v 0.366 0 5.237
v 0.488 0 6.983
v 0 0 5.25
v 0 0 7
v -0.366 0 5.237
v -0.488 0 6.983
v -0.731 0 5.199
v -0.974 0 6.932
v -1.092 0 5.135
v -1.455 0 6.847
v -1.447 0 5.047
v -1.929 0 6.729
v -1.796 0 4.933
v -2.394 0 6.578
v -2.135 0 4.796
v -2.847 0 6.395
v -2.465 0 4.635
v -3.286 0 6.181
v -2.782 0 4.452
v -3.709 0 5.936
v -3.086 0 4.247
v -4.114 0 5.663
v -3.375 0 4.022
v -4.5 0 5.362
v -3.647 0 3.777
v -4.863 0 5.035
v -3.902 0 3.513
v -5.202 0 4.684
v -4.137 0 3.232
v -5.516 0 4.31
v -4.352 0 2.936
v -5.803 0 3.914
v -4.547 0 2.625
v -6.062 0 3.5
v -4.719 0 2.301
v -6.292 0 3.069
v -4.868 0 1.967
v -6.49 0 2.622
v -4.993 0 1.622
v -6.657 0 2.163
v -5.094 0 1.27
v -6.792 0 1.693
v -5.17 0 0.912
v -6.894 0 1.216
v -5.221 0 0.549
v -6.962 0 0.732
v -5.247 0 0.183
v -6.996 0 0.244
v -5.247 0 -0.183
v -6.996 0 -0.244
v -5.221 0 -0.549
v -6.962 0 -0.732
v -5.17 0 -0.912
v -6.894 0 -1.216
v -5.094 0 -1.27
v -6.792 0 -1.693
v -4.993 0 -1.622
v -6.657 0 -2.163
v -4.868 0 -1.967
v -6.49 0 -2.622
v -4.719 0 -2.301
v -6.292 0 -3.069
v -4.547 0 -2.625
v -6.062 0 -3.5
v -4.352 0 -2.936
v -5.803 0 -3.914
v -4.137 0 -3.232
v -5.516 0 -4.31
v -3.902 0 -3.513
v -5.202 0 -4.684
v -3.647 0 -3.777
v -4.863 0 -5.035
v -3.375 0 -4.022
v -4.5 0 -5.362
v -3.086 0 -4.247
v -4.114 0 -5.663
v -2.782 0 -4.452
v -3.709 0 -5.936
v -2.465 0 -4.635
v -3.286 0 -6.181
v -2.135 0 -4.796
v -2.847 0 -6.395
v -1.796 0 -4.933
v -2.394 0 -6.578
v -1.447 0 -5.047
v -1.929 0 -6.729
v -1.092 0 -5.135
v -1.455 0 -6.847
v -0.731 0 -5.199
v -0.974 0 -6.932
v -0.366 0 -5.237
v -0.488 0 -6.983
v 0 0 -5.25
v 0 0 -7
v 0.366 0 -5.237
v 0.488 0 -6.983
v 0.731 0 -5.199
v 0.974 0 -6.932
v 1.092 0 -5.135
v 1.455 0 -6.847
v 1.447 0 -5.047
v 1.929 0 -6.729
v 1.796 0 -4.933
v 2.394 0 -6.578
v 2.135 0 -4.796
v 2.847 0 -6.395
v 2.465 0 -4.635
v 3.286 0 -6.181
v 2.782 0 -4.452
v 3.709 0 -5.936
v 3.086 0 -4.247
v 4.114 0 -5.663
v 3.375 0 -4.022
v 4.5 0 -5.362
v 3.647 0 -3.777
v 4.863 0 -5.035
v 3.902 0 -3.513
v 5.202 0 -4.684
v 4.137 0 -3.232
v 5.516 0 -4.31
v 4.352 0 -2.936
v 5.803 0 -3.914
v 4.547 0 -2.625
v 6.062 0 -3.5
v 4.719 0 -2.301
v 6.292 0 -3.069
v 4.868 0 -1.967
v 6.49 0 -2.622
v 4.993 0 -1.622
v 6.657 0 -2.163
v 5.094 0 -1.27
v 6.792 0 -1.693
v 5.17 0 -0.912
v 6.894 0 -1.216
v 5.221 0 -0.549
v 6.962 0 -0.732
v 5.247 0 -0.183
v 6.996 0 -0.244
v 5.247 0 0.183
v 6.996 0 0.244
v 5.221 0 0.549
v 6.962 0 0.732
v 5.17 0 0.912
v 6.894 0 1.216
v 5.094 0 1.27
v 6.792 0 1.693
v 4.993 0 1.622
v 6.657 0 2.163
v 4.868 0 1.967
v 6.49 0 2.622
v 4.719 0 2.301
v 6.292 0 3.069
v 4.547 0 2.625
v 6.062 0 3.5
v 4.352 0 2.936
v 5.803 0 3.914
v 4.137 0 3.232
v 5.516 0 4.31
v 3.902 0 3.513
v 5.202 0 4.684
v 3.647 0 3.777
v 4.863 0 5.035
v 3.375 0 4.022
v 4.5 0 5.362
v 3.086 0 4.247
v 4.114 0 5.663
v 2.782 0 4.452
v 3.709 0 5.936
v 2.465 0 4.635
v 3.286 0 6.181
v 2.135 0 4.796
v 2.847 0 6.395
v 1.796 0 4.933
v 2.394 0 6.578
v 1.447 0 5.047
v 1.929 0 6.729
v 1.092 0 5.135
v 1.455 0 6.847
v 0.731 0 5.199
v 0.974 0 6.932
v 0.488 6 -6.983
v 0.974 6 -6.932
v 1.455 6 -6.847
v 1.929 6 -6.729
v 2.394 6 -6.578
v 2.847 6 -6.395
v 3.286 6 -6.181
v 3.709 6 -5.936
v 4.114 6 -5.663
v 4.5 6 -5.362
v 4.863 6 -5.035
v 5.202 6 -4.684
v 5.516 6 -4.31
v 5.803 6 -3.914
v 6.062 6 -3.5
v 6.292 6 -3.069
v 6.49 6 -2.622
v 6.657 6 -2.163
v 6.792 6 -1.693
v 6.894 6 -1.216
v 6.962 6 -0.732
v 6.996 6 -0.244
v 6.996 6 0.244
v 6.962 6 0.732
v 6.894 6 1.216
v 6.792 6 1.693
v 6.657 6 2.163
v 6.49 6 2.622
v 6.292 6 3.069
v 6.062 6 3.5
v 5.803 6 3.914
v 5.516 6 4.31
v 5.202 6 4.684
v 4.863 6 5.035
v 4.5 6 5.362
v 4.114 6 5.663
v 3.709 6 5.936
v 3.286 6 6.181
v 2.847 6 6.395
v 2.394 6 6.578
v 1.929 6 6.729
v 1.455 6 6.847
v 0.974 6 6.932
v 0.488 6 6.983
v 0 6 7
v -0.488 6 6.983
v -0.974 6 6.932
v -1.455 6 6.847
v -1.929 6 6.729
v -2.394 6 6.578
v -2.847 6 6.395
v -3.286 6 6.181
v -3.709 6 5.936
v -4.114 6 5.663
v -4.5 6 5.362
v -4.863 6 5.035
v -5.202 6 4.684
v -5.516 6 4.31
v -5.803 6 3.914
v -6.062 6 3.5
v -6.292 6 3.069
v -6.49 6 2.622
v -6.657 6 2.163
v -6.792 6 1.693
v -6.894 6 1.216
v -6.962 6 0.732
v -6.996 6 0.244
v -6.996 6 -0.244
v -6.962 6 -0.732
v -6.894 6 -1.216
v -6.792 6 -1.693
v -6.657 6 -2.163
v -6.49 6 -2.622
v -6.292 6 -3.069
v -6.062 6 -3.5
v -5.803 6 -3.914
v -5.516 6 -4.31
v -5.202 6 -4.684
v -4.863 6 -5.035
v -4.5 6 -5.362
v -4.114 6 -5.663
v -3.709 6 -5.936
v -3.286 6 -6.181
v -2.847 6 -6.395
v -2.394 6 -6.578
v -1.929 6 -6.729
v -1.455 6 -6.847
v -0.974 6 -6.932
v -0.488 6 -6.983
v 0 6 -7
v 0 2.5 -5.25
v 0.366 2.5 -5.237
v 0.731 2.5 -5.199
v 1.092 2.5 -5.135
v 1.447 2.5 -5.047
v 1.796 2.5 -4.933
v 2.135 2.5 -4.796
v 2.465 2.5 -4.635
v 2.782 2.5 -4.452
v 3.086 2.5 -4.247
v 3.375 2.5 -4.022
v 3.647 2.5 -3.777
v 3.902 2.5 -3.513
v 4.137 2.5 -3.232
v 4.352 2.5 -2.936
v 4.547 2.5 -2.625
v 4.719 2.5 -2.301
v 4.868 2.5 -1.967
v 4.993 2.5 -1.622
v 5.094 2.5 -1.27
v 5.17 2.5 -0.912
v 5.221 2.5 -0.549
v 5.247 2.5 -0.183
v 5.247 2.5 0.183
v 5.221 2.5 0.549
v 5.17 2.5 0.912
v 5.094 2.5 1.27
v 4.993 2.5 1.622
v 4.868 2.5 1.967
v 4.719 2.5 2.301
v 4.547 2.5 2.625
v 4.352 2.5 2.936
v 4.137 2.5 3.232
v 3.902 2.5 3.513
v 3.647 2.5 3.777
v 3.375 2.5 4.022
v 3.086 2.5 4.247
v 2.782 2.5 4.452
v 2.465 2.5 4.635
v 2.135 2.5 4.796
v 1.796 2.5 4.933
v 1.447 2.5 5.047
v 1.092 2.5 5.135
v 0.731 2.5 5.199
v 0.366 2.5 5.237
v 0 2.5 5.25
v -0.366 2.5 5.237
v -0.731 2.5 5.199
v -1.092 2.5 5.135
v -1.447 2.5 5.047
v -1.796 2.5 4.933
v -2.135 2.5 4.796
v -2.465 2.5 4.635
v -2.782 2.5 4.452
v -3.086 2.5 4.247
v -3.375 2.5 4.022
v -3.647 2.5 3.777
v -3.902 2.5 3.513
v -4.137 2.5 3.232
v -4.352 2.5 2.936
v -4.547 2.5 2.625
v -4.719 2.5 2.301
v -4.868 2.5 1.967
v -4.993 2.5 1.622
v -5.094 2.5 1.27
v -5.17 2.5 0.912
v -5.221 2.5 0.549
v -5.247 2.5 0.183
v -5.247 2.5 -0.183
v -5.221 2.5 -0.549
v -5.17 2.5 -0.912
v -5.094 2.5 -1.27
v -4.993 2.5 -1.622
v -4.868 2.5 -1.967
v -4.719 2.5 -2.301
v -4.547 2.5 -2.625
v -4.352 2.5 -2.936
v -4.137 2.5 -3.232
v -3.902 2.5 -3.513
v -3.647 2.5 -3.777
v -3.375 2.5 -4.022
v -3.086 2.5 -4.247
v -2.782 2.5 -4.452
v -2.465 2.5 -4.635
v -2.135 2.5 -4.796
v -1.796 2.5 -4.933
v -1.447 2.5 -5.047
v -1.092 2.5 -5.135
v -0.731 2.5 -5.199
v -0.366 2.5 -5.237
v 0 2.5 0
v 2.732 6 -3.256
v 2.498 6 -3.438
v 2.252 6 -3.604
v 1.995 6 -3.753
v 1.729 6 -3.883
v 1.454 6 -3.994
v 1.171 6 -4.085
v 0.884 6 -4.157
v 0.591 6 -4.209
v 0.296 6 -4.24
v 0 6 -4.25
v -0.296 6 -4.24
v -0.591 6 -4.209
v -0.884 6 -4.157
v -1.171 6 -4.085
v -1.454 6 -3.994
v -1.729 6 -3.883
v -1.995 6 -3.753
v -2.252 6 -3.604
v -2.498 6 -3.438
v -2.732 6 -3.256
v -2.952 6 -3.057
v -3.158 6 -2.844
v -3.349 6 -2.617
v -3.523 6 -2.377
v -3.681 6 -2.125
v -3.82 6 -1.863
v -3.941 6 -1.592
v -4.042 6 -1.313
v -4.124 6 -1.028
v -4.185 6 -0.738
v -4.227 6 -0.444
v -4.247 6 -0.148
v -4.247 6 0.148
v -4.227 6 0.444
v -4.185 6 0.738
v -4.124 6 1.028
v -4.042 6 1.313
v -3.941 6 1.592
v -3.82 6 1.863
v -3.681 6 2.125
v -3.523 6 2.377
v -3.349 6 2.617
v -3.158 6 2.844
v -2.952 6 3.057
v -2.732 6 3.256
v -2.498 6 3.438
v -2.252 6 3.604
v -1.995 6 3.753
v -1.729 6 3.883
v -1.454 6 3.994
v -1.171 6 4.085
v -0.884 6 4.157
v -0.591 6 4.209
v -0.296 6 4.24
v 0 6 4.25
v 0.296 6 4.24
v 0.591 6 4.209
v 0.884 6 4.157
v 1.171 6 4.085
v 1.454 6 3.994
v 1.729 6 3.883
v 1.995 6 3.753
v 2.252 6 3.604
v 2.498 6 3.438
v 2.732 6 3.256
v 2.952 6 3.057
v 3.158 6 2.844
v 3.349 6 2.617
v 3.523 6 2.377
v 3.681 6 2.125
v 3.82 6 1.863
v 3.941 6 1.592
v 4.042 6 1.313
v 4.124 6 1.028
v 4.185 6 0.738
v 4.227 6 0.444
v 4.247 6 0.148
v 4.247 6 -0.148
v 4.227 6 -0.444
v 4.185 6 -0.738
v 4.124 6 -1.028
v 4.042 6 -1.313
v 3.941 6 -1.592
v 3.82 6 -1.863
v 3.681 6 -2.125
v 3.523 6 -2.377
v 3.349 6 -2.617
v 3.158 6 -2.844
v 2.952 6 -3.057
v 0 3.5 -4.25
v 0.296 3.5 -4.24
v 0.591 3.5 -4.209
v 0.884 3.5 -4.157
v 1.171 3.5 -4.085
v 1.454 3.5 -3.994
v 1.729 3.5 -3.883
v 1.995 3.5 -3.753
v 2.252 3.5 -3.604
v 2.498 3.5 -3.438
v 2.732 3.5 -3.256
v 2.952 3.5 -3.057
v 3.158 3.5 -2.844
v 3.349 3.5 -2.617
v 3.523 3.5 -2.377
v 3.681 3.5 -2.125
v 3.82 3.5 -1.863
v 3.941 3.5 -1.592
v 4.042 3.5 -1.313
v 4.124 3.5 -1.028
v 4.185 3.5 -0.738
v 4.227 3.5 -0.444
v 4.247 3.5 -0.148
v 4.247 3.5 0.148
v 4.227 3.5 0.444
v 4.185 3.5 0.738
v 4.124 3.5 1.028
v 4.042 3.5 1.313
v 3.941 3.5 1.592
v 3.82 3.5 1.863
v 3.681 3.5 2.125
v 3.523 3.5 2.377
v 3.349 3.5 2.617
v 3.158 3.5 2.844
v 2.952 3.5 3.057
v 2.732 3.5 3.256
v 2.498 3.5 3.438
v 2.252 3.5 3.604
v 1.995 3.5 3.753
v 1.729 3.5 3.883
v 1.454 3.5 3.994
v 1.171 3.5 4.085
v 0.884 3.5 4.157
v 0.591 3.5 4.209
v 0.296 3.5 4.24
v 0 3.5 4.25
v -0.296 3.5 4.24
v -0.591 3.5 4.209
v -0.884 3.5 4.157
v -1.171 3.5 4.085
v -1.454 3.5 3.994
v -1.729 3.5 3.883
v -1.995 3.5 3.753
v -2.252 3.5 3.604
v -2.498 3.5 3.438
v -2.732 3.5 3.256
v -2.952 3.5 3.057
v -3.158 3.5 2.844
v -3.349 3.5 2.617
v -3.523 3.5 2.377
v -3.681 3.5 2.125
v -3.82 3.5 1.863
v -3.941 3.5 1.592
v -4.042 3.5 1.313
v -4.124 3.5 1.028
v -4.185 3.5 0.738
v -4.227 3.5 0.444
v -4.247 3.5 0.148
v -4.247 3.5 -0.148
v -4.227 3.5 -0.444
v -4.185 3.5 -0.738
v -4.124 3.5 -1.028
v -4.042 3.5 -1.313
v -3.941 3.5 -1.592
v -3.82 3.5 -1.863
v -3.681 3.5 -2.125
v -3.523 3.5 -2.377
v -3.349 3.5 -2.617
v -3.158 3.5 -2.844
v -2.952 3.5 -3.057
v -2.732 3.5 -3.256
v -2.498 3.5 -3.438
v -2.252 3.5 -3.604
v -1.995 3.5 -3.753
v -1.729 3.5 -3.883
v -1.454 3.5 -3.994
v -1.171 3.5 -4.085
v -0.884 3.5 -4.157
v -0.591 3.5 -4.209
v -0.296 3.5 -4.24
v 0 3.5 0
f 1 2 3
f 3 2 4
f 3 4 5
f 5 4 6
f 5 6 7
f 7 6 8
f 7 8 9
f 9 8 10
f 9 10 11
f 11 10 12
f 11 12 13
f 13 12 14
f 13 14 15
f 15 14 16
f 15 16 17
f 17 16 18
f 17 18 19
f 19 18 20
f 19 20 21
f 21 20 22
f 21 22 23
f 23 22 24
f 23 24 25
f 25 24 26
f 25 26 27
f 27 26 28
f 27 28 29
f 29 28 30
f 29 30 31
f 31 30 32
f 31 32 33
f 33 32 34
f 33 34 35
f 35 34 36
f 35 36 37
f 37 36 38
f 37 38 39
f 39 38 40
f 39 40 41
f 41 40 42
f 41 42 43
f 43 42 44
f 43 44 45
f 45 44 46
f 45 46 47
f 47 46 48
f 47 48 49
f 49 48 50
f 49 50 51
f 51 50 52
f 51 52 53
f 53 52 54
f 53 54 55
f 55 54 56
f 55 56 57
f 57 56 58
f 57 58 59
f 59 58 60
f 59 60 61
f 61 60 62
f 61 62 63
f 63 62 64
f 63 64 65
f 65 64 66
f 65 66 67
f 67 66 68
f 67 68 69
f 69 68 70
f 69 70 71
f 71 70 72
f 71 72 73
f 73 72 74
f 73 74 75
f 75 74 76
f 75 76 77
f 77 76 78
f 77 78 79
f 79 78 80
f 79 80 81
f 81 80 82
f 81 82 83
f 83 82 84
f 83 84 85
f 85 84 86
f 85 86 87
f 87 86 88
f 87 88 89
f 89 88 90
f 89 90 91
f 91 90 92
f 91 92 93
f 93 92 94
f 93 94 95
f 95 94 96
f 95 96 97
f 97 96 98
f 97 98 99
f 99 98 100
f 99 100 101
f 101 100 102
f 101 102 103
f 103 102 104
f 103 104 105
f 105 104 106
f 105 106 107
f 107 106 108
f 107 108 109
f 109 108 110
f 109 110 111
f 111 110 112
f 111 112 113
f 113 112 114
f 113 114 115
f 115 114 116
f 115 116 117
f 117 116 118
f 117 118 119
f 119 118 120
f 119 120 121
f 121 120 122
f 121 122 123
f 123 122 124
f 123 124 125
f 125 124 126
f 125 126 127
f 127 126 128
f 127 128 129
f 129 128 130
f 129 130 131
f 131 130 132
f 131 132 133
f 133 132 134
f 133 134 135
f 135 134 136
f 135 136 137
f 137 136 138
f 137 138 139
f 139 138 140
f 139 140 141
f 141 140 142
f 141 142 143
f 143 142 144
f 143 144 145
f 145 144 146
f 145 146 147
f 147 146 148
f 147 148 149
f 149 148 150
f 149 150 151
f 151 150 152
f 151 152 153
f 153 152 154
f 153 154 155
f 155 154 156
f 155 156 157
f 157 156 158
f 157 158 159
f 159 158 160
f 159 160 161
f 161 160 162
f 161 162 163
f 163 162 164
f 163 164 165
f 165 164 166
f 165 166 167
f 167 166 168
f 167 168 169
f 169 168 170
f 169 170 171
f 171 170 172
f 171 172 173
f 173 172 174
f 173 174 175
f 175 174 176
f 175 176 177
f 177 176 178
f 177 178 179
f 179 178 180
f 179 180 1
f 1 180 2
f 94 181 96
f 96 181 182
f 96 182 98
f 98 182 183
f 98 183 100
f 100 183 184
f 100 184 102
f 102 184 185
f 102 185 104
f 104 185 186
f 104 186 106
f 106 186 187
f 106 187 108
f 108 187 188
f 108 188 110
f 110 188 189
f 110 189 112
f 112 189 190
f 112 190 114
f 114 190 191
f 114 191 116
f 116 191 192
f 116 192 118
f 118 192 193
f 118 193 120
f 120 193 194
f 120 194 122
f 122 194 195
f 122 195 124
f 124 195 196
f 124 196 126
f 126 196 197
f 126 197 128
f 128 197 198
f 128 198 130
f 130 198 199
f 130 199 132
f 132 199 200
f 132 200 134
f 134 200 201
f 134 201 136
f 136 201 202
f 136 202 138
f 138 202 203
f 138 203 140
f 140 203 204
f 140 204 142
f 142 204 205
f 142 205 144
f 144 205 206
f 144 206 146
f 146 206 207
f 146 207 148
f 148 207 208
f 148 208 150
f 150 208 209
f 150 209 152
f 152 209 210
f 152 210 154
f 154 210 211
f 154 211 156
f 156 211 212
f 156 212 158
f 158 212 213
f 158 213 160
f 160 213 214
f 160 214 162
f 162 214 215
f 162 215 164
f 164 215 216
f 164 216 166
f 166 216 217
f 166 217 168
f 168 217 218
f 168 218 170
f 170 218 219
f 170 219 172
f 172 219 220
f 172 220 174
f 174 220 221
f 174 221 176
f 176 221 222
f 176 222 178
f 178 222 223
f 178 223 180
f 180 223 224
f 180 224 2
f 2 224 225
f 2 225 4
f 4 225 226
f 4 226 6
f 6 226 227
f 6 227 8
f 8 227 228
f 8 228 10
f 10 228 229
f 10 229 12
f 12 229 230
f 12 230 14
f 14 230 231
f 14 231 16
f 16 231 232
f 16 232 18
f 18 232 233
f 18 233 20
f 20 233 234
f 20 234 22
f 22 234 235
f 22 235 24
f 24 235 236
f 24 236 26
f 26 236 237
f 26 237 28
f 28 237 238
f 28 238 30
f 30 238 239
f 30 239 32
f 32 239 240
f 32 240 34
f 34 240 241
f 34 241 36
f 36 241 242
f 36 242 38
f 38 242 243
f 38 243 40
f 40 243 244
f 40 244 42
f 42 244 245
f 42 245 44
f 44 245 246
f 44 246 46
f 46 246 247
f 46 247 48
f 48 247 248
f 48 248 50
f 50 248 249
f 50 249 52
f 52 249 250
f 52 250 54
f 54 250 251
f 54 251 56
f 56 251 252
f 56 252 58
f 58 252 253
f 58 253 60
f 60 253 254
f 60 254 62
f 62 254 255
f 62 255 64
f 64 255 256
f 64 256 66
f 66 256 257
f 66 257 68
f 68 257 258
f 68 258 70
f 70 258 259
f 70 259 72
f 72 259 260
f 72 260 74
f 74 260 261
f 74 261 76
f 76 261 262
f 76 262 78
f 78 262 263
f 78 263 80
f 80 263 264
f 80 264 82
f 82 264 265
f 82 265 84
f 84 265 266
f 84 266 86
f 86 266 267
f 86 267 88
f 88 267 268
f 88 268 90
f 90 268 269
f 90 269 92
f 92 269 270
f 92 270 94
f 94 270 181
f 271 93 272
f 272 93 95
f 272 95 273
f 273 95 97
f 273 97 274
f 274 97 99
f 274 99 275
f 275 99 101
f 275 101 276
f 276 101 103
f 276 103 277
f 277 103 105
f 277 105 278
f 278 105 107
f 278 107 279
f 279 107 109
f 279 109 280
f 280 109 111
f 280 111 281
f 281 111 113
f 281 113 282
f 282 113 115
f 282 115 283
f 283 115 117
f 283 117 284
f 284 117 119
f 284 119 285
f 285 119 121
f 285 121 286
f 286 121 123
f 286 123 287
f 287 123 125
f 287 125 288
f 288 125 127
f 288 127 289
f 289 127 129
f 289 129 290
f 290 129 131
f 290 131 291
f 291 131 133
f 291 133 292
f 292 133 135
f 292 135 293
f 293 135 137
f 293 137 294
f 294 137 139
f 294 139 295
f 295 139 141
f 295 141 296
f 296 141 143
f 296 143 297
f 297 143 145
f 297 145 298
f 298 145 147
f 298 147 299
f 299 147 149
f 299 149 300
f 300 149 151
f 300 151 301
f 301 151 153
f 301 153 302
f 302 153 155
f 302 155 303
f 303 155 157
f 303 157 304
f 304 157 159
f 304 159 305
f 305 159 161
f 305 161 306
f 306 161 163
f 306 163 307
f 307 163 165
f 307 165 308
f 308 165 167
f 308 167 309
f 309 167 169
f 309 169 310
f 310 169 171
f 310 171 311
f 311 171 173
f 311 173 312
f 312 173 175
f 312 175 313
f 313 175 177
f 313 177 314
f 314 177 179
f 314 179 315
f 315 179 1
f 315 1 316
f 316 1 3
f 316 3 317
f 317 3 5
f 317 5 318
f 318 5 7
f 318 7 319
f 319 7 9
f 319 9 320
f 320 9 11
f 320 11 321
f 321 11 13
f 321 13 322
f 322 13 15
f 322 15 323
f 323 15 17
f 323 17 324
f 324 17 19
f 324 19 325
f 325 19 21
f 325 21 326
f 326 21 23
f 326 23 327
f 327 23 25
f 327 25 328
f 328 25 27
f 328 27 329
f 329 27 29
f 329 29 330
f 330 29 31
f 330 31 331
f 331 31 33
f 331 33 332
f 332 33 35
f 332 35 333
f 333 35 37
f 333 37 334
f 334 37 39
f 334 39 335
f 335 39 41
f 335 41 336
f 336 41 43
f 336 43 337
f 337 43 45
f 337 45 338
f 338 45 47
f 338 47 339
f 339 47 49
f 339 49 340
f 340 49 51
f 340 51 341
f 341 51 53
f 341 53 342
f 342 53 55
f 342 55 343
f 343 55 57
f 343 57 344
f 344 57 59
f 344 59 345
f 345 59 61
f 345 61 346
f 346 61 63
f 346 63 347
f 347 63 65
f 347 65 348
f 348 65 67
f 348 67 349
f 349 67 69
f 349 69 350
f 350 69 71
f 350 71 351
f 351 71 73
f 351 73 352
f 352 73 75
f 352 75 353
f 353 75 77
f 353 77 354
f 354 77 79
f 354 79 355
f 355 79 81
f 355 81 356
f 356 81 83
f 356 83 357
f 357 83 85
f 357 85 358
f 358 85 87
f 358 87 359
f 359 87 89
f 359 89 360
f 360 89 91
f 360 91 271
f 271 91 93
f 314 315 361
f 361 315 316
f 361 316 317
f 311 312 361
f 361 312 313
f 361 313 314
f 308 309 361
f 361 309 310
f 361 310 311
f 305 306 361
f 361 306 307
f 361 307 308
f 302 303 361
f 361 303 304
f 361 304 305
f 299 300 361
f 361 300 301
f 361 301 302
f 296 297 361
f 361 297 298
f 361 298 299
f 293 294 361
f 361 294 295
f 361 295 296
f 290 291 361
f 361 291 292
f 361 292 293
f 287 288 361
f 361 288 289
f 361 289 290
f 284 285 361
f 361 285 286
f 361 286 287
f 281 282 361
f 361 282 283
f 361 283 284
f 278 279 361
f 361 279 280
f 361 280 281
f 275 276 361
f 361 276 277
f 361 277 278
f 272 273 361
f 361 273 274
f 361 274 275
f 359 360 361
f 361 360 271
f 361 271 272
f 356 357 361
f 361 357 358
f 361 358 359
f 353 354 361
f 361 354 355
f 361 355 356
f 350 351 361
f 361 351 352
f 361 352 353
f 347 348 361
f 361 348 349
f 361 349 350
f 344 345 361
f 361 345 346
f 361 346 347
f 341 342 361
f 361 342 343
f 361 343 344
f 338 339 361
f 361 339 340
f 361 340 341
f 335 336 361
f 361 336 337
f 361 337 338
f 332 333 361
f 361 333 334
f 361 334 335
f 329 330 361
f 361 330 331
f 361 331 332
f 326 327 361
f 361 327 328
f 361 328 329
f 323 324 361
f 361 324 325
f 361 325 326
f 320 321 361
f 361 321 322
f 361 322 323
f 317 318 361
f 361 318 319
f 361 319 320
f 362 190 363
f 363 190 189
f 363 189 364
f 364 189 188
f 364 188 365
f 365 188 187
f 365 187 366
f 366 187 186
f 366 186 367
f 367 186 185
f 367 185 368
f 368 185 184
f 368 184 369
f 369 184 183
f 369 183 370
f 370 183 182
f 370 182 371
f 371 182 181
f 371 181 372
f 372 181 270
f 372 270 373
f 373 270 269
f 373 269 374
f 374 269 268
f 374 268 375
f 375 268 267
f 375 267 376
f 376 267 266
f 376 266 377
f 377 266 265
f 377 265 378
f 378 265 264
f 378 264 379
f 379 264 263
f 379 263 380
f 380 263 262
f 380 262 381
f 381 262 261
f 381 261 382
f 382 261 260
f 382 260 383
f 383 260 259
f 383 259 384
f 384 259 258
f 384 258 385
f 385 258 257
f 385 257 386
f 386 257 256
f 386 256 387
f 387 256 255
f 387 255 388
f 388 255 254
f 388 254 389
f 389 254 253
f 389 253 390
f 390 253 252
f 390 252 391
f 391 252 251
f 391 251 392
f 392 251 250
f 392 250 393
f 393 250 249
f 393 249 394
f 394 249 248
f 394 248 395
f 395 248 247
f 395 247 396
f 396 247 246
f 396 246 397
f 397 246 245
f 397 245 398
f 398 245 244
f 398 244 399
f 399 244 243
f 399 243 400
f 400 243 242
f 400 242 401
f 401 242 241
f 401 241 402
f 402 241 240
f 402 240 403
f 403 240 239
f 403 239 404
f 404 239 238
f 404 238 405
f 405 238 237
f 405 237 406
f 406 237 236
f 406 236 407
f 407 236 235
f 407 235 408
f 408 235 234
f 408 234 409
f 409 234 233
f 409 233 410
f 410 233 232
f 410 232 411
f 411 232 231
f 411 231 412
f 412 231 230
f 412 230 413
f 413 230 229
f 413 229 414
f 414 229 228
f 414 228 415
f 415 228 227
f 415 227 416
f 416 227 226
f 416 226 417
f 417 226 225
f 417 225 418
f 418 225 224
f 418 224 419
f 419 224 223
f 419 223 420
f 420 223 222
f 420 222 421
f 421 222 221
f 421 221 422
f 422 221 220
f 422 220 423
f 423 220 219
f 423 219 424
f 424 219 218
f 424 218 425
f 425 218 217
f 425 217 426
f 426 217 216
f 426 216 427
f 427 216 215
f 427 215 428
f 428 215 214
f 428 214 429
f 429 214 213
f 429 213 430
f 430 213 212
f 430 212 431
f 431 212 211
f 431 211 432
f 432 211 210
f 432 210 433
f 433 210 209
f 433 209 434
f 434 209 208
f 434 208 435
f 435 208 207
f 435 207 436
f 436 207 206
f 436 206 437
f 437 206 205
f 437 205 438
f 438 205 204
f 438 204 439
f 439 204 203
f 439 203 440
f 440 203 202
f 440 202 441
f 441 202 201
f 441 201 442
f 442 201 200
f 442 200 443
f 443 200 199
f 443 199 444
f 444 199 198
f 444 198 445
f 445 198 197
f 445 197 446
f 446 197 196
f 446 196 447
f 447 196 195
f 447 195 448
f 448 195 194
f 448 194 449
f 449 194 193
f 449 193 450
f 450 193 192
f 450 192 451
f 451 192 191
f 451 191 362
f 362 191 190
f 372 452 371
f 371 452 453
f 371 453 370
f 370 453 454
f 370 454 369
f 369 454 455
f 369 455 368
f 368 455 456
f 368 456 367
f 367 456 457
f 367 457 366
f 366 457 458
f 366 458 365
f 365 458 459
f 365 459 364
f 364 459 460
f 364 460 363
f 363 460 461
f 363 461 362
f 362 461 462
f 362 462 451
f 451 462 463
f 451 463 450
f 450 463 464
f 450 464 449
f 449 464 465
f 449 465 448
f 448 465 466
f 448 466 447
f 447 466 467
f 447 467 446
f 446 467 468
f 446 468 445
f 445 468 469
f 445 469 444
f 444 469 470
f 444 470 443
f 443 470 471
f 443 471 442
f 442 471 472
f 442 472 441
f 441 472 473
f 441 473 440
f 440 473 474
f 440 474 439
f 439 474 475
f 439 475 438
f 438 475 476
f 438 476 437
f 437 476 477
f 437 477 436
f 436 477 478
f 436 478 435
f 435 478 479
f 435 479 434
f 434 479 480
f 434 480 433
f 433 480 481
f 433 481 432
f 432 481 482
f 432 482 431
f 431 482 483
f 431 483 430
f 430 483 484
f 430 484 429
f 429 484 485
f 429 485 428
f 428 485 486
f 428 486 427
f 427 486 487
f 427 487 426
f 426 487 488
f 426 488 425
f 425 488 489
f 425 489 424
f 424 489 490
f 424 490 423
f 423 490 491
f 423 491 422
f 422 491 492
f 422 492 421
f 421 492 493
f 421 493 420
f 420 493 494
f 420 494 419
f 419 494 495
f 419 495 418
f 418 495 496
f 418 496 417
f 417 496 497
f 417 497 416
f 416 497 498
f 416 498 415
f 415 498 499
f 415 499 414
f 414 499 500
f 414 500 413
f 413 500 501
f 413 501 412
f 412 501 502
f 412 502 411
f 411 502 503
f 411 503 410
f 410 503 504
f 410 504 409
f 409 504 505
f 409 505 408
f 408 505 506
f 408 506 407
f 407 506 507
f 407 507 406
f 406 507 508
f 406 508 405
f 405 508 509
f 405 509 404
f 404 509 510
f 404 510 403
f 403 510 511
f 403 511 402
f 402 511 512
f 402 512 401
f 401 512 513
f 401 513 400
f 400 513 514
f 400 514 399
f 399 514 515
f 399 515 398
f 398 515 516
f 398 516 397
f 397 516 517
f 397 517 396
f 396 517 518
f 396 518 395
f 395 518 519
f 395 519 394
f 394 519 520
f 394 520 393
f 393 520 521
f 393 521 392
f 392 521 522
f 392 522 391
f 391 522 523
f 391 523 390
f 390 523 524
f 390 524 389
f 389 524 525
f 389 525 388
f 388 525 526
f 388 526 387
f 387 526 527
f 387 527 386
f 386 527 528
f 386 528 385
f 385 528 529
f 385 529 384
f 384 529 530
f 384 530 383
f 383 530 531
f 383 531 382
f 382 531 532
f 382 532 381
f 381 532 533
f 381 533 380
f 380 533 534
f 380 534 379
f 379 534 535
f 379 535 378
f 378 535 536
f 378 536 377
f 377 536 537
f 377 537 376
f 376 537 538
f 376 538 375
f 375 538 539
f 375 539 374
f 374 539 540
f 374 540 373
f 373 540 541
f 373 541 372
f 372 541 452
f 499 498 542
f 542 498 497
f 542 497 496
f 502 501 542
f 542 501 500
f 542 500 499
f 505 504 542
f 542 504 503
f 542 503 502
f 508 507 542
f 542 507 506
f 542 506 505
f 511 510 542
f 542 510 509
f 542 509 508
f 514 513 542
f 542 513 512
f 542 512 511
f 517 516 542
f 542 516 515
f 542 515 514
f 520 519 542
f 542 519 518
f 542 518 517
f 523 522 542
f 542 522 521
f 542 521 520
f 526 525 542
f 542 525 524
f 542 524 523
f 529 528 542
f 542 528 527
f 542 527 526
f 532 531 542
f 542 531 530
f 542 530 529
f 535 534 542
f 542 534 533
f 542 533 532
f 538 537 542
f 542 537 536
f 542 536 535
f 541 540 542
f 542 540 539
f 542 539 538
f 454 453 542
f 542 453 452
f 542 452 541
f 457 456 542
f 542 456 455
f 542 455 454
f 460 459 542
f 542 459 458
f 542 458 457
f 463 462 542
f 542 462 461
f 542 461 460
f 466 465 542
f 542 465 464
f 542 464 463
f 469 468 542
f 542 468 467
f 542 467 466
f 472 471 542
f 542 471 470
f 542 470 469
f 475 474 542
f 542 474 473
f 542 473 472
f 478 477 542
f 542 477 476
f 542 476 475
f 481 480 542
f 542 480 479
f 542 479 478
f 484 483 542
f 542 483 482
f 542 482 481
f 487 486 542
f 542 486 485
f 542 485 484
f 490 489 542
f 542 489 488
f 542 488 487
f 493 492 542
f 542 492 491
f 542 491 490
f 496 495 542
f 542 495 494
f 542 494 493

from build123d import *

# Parameters (mm, degrees)
SKETCH1_R           = 7
SKETCH1_R_2         = 5.25
BOSS_EXTRUDE1_DEPTH = 2.5
SKETCH2_R           = 7
BOSS_EXTRUDE2_DEPTH = 1
SKETCH3_R           = 7
SKETCH3_R_2         = 4.25
BOSS_EXTRUDE3_DEPTH = 2.5


with BuildPart() as part:
    # Sketch1 → Boss-Extrude1 (new body)
    with BuildSketch(Plane(origin=(0, 0, 0), x_dir=(1, 0, 0), z_dir=(0, 1, 0))):
        Circle(SKETCH1_R)
        Circle(SKETCH1_R_2, mode=Mode.SUBTRACT)
    extrude(amount=BOSS_EXTRUDE1_DEPTH)

    # Sketch2 → Boss-Extrude2 (add)
    with BuildSketch(Plane(origin=(0, 2.5, 0), x_dir=(1, 0, 0), z_dir=(0, 1, 0))):
        Circle(SKETCH2_R)
    extrude(amount=BOSS_EXTRUDE2_DEPTH)

    # Sketch3 → Boss-Extrude3 (add)
    with BuildSketch(Plane(origin=(0, 3.5, 0), x_dir=(1, 0, 0), z_dir=(0, 1, 0))):
        Circle(SKETCH3_R)
        Circle(SKETCH3_R_2, mode=Mode.SUBTRACT)
    extrude(amount=BOSS_EXTRUDE3_DEPTH)


solid = part.part
